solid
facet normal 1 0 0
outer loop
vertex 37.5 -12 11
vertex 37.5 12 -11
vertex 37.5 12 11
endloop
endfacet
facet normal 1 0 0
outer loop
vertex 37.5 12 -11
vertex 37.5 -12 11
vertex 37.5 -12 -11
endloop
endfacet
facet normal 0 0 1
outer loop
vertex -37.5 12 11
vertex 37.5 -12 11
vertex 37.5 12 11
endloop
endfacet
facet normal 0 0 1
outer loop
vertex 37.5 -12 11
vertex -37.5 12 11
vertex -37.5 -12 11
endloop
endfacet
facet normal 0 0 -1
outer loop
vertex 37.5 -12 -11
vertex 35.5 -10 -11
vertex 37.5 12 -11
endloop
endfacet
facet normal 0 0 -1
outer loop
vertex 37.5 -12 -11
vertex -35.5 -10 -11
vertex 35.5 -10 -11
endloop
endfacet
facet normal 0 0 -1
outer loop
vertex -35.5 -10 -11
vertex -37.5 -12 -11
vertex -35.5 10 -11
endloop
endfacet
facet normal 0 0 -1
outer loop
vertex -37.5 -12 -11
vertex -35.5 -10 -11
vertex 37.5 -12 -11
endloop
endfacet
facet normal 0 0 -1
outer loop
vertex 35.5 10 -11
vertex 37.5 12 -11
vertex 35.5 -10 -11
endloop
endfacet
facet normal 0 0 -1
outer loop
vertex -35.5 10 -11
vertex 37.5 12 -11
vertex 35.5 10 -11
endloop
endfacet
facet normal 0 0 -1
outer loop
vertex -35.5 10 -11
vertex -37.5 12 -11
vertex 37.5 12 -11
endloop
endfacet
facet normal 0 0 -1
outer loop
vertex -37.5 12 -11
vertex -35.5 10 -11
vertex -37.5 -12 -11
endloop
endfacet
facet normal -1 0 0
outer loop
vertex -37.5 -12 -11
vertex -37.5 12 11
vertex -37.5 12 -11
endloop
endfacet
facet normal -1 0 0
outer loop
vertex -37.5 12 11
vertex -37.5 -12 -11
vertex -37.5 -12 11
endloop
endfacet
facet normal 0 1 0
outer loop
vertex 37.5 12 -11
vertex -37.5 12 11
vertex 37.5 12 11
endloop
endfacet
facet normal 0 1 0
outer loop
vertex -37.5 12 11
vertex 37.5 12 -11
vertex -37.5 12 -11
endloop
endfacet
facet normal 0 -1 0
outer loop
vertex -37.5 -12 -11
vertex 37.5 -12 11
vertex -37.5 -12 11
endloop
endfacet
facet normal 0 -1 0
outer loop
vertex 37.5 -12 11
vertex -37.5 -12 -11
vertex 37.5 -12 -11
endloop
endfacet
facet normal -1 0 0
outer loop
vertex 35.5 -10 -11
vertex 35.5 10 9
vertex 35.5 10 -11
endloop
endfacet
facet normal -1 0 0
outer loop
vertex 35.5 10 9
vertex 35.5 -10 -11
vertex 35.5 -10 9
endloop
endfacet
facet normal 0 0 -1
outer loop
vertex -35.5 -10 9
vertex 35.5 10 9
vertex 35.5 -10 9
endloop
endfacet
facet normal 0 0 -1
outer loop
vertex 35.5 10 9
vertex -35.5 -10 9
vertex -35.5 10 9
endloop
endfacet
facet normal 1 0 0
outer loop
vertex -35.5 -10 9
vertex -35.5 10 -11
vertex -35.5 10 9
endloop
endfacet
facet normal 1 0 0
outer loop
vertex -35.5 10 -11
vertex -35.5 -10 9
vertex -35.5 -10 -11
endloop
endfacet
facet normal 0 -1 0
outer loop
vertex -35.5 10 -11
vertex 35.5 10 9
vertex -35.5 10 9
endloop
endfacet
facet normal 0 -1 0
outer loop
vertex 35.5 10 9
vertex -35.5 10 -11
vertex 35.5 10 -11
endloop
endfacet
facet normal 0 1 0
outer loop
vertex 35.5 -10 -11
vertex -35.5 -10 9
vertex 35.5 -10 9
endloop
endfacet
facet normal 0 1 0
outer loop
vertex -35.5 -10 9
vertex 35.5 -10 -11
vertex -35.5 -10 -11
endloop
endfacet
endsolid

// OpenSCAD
difference ([]){
    cube([75,24,22], center=true);
    translate([0,0,-3]) cube([71,20,24], center=true);

}
